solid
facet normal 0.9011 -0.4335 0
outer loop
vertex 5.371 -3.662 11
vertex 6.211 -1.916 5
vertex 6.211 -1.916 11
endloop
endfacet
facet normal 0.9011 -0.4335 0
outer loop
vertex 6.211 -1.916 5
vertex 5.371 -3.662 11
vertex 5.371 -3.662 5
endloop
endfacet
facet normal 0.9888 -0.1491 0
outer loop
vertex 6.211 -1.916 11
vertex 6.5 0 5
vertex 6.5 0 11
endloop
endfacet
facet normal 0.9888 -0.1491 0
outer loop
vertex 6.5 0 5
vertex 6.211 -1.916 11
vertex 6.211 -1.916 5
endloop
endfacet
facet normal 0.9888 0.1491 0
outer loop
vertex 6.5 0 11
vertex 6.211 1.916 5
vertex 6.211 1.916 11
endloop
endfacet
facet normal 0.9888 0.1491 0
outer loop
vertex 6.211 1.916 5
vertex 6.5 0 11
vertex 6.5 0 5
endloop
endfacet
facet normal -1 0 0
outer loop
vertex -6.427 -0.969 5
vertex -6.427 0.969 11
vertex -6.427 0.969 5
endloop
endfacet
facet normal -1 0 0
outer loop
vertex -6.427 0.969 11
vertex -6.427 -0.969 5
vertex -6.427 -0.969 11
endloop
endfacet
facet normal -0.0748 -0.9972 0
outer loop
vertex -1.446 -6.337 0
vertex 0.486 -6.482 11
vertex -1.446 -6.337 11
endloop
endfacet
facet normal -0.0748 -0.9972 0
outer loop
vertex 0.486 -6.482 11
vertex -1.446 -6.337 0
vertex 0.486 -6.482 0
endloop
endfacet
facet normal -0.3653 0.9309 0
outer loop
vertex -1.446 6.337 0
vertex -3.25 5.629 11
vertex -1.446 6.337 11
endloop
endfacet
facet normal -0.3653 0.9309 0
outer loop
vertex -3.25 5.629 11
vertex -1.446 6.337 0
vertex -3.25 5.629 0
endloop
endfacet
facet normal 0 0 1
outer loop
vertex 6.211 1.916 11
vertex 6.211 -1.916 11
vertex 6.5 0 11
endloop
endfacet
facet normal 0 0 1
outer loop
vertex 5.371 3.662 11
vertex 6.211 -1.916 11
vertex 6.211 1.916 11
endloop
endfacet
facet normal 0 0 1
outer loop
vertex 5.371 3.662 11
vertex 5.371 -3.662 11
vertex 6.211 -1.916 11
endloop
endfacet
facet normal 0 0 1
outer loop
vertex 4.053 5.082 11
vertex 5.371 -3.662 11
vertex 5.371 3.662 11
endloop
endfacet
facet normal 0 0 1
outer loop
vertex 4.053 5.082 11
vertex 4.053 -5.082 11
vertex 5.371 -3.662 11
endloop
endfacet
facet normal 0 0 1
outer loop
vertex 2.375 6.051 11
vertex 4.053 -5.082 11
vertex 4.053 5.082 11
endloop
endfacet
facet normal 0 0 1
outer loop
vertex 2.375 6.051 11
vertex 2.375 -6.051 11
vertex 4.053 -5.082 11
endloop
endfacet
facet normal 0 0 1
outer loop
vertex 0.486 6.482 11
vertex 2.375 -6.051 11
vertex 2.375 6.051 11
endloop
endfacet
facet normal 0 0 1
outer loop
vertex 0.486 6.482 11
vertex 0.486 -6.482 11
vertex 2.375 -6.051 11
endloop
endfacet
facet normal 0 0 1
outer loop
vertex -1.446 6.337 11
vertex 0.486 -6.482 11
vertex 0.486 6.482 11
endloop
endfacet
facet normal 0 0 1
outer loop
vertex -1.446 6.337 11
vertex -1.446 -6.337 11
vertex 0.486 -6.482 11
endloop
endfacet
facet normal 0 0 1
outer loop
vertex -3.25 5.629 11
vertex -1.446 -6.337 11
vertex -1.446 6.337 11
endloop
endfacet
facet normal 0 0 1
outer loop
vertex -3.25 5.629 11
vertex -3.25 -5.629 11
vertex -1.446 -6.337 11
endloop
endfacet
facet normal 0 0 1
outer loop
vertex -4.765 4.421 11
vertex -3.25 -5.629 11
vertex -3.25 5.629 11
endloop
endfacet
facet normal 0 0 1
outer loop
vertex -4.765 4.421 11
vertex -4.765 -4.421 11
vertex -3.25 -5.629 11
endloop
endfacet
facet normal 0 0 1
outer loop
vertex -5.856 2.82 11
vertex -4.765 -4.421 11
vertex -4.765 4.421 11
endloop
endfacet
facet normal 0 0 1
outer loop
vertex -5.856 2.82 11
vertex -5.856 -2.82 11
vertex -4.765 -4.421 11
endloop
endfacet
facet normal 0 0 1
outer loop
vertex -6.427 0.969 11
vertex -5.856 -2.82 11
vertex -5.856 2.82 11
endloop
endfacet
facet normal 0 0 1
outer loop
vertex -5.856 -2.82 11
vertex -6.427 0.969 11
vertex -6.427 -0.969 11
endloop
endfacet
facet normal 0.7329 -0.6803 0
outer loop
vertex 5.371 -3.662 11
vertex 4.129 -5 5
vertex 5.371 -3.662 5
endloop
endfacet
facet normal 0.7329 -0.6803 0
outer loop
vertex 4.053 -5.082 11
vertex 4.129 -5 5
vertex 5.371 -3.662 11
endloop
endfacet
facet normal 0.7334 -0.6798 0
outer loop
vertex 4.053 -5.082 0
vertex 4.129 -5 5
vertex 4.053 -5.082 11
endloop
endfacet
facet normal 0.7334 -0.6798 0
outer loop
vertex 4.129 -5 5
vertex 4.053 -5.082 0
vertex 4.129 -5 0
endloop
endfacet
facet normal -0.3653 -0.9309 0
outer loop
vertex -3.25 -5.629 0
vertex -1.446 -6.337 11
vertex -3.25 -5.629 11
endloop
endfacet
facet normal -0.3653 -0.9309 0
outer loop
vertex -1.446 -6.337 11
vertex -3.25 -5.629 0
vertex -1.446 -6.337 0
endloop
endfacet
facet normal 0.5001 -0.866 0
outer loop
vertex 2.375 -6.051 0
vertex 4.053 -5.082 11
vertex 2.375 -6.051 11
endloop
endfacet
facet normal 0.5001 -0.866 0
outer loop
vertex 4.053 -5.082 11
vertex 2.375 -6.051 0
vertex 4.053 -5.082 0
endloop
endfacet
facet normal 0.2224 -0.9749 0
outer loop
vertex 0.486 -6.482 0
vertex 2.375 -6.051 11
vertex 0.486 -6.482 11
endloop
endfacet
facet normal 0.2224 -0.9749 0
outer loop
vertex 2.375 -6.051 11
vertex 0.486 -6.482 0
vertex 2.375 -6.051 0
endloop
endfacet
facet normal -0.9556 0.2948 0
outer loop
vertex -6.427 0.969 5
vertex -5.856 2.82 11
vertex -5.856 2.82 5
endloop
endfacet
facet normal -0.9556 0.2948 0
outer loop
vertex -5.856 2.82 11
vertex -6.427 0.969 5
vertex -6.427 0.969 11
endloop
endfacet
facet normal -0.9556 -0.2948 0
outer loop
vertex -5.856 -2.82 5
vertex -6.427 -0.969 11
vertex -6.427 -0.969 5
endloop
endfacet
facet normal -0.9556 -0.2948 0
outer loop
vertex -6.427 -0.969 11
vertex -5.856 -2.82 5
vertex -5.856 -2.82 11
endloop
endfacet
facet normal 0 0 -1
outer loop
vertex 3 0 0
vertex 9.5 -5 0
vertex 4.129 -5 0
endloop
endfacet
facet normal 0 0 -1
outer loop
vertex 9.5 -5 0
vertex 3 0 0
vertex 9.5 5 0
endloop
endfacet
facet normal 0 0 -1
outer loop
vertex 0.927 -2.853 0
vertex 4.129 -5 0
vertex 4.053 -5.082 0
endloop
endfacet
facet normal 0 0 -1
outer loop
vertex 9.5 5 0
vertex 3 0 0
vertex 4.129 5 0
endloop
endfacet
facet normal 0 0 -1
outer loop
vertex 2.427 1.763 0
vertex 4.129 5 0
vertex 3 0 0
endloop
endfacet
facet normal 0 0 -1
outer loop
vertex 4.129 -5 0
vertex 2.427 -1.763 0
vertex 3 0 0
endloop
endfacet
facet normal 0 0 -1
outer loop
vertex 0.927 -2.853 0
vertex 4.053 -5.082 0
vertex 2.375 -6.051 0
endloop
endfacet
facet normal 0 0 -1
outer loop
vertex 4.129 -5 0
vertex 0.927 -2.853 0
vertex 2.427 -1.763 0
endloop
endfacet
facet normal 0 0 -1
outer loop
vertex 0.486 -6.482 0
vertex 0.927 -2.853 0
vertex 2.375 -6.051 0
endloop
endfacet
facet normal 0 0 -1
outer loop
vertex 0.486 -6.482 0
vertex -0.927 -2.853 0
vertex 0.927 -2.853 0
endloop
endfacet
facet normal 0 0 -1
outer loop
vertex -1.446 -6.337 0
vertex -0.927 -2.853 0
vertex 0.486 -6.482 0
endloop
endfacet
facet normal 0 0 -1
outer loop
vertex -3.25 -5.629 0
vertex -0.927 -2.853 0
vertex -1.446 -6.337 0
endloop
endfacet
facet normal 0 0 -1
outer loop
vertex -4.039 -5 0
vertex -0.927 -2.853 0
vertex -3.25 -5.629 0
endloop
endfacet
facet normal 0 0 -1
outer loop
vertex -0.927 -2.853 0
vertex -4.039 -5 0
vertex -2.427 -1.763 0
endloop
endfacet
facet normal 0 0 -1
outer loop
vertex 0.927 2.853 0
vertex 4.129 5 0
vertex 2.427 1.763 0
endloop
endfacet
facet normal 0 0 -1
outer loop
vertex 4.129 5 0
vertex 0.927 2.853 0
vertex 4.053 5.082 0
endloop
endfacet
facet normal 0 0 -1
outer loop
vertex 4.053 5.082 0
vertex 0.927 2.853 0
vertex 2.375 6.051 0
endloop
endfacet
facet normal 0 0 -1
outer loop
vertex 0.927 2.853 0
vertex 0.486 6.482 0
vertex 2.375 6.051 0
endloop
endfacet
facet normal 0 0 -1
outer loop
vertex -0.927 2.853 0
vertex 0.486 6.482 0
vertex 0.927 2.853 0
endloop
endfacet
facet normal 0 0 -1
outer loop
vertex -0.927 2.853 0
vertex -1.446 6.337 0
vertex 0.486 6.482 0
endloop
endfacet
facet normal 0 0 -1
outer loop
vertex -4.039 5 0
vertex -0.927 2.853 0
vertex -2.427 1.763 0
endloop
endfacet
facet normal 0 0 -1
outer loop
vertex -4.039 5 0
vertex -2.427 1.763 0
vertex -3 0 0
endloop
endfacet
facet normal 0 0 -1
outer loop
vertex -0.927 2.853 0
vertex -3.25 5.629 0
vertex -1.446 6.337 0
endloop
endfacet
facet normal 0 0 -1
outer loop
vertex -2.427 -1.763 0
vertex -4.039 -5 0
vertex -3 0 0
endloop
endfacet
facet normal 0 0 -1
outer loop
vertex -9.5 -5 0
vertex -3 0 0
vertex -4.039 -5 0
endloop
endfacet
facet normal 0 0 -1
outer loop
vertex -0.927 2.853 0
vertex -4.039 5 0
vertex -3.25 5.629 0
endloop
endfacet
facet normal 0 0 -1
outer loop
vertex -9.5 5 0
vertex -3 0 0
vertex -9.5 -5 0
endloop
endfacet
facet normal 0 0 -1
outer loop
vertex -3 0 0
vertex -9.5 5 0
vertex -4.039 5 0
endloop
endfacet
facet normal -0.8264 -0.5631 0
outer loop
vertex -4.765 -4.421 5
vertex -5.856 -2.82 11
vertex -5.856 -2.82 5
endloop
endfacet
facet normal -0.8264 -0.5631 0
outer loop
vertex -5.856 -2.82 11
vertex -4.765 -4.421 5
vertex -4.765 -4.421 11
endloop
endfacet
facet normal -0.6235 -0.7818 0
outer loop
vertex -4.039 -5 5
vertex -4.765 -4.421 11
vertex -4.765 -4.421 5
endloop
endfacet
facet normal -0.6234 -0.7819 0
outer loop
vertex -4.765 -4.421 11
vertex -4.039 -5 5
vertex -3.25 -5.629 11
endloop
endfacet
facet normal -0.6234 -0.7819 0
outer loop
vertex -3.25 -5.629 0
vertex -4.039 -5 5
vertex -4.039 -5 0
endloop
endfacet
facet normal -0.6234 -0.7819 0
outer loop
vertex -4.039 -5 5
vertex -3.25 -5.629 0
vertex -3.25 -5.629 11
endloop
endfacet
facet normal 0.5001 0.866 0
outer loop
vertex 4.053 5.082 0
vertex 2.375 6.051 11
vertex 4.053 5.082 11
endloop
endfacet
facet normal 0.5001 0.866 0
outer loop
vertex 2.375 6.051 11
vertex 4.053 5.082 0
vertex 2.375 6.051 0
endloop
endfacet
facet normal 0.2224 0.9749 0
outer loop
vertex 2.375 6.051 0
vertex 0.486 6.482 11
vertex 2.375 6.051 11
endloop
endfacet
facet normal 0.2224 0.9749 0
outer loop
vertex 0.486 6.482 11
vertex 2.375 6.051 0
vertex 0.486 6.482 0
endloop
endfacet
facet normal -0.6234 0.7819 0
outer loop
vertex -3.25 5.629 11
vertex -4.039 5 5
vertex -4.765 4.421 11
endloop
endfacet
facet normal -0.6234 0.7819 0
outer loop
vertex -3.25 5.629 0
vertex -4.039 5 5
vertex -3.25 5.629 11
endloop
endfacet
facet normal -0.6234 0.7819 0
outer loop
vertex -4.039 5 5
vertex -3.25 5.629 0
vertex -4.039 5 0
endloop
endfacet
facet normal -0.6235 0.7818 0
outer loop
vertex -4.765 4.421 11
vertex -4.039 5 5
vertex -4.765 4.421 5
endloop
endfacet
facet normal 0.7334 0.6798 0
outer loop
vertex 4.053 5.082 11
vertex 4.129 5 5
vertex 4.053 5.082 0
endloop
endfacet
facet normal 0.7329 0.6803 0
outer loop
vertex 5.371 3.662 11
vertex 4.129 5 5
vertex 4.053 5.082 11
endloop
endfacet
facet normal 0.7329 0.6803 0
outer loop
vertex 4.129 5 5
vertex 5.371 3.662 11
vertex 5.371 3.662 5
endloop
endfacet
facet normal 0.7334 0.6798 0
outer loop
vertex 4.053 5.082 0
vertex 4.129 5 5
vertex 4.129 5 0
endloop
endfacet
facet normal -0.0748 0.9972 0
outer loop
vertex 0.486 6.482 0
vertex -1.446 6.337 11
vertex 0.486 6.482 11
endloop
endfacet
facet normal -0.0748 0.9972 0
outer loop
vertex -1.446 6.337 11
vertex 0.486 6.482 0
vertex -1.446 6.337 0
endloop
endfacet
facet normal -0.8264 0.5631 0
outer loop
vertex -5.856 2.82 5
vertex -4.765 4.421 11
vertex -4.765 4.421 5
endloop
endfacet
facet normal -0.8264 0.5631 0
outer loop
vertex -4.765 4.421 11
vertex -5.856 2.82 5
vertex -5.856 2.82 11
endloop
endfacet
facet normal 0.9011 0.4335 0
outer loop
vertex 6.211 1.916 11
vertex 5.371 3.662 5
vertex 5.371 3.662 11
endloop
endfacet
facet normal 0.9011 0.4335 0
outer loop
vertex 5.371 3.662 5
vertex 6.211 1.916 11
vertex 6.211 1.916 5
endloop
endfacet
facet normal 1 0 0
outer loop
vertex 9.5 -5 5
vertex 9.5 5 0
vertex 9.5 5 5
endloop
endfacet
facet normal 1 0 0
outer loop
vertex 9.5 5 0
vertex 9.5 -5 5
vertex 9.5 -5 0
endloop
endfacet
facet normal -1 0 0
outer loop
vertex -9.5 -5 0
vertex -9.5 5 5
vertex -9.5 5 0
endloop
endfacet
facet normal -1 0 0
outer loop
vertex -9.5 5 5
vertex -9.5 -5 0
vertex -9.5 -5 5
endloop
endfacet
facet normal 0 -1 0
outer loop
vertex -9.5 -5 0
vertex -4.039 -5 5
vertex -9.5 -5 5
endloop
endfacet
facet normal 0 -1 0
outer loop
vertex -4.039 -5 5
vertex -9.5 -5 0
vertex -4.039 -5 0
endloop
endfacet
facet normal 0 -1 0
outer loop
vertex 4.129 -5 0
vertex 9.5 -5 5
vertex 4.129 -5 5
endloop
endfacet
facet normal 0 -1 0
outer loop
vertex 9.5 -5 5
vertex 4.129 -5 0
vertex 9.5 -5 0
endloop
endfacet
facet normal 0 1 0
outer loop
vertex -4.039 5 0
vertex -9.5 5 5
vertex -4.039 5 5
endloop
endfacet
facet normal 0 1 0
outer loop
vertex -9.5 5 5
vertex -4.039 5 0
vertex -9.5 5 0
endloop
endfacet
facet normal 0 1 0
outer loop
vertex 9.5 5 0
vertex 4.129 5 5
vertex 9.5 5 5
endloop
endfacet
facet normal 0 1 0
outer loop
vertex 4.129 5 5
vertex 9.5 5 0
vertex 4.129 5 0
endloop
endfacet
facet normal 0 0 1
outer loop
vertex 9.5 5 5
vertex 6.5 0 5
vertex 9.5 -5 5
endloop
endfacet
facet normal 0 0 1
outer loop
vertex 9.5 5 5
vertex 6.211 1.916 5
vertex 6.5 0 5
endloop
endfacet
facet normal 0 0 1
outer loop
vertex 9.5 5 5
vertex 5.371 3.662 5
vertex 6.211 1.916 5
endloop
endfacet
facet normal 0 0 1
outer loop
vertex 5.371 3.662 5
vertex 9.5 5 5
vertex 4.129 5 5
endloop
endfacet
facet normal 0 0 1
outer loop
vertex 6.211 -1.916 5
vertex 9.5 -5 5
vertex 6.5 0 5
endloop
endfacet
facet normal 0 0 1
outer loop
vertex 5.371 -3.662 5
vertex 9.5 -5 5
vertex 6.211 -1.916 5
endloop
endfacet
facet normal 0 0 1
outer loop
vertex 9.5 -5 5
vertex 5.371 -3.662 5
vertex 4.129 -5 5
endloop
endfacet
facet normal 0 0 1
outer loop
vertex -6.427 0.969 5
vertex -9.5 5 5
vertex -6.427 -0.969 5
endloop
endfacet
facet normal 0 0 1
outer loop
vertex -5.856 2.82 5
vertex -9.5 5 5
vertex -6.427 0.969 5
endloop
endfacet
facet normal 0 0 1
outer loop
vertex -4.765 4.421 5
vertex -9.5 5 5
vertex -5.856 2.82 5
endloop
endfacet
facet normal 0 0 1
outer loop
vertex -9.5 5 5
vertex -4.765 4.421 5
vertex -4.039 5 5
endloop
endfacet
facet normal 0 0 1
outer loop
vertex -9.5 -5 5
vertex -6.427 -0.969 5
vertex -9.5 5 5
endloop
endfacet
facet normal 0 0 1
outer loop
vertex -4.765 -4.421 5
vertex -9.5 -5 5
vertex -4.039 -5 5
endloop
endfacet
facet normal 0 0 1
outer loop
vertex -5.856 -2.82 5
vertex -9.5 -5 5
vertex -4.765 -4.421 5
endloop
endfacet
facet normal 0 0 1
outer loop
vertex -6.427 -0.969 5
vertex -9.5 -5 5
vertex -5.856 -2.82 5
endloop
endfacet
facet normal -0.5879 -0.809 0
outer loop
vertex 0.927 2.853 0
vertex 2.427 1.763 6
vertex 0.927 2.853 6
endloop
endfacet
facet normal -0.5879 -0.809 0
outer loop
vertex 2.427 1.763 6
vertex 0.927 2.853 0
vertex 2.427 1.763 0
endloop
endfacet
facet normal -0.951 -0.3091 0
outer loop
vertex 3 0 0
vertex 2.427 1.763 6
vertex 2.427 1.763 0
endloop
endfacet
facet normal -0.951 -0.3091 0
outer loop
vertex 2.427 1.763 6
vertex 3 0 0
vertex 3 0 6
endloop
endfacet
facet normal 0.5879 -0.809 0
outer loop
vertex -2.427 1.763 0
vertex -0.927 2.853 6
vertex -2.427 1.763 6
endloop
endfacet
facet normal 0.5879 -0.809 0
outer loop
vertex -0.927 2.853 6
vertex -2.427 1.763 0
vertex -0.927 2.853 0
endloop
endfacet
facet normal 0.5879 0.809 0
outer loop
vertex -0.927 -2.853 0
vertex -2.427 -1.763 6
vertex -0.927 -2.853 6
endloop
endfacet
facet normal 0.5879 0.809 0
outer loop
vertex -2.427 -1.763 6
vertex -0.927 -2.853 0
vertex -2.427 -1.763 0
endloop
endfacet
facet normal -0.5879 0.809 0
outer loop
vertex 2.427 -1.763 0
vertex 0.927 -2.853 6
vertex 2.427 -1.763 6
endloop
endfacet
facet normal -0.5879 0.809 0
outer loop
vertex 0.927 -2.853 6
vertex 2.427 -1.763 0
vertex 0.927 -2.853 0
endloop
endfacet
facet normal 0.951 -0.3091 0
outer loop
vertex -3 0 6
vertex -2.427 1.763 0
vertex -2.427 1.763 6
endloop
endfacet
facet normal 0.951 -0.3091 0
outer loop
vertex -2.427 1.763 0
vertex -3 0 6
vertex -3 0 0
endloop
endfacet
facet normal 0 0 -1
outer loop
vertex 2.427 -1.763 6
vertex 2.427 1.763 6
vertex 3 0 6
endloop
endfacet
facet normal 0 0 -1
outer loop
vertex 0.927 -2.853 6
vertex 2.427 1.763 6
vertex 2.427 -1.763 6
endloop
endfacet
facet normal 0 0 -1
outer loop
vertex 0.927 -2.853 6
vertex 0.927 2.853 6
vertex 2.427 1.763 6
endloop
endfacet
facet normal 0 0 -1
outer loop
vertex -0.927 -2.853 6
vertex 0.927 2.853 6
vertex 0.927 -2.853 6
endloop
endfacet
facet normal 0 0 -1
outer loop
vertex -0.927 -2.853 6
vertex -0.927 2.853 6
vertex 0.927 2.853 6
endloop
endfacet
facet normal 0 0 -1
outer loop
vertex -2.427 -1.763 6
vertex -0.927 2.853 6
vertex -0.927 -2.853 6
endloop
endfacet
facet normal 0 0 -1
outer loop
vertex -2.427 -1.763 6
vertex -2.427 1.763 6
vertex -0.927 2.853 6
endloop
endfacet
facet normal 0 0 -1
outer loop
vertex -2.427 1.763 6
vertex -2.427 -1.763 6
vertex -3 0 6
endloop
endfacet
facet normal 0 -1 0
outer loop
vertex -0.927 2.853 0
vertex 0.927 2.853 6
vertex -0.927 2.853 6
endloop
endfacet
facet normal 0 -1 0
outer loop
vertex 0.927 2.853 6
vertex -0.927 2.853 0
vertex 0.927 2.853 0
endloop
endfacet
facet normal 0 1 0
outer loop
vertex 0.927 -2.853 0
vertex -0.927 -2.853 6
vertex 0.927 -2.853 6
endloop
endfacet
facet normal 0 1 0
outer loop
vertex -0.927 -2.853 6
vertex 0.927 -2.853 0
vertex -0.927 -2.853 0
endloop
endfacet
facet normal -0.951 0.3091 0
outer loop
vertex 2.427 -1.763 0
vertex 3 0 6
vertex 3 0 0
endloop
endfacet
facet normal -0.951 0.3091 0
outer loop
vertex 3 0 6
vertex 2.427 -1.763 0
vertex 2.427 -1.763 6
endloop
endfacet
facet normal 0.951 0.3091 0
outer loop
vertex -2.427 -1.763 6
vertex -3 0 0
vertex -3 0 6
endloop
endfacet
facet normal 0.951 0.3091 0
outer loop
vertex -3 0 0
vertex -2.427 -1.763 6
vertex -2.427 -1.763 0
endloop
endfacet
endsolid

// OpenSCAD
difference () {
    union () {
        linear_extrude(11) {
            circle(d=13);
        }
        linear_extrude(5) {
        square([19,10], true);
        }
    }
    translate([0,0,-1])
    linear_extrude(7) {
        circle(d=6);
    }
}
